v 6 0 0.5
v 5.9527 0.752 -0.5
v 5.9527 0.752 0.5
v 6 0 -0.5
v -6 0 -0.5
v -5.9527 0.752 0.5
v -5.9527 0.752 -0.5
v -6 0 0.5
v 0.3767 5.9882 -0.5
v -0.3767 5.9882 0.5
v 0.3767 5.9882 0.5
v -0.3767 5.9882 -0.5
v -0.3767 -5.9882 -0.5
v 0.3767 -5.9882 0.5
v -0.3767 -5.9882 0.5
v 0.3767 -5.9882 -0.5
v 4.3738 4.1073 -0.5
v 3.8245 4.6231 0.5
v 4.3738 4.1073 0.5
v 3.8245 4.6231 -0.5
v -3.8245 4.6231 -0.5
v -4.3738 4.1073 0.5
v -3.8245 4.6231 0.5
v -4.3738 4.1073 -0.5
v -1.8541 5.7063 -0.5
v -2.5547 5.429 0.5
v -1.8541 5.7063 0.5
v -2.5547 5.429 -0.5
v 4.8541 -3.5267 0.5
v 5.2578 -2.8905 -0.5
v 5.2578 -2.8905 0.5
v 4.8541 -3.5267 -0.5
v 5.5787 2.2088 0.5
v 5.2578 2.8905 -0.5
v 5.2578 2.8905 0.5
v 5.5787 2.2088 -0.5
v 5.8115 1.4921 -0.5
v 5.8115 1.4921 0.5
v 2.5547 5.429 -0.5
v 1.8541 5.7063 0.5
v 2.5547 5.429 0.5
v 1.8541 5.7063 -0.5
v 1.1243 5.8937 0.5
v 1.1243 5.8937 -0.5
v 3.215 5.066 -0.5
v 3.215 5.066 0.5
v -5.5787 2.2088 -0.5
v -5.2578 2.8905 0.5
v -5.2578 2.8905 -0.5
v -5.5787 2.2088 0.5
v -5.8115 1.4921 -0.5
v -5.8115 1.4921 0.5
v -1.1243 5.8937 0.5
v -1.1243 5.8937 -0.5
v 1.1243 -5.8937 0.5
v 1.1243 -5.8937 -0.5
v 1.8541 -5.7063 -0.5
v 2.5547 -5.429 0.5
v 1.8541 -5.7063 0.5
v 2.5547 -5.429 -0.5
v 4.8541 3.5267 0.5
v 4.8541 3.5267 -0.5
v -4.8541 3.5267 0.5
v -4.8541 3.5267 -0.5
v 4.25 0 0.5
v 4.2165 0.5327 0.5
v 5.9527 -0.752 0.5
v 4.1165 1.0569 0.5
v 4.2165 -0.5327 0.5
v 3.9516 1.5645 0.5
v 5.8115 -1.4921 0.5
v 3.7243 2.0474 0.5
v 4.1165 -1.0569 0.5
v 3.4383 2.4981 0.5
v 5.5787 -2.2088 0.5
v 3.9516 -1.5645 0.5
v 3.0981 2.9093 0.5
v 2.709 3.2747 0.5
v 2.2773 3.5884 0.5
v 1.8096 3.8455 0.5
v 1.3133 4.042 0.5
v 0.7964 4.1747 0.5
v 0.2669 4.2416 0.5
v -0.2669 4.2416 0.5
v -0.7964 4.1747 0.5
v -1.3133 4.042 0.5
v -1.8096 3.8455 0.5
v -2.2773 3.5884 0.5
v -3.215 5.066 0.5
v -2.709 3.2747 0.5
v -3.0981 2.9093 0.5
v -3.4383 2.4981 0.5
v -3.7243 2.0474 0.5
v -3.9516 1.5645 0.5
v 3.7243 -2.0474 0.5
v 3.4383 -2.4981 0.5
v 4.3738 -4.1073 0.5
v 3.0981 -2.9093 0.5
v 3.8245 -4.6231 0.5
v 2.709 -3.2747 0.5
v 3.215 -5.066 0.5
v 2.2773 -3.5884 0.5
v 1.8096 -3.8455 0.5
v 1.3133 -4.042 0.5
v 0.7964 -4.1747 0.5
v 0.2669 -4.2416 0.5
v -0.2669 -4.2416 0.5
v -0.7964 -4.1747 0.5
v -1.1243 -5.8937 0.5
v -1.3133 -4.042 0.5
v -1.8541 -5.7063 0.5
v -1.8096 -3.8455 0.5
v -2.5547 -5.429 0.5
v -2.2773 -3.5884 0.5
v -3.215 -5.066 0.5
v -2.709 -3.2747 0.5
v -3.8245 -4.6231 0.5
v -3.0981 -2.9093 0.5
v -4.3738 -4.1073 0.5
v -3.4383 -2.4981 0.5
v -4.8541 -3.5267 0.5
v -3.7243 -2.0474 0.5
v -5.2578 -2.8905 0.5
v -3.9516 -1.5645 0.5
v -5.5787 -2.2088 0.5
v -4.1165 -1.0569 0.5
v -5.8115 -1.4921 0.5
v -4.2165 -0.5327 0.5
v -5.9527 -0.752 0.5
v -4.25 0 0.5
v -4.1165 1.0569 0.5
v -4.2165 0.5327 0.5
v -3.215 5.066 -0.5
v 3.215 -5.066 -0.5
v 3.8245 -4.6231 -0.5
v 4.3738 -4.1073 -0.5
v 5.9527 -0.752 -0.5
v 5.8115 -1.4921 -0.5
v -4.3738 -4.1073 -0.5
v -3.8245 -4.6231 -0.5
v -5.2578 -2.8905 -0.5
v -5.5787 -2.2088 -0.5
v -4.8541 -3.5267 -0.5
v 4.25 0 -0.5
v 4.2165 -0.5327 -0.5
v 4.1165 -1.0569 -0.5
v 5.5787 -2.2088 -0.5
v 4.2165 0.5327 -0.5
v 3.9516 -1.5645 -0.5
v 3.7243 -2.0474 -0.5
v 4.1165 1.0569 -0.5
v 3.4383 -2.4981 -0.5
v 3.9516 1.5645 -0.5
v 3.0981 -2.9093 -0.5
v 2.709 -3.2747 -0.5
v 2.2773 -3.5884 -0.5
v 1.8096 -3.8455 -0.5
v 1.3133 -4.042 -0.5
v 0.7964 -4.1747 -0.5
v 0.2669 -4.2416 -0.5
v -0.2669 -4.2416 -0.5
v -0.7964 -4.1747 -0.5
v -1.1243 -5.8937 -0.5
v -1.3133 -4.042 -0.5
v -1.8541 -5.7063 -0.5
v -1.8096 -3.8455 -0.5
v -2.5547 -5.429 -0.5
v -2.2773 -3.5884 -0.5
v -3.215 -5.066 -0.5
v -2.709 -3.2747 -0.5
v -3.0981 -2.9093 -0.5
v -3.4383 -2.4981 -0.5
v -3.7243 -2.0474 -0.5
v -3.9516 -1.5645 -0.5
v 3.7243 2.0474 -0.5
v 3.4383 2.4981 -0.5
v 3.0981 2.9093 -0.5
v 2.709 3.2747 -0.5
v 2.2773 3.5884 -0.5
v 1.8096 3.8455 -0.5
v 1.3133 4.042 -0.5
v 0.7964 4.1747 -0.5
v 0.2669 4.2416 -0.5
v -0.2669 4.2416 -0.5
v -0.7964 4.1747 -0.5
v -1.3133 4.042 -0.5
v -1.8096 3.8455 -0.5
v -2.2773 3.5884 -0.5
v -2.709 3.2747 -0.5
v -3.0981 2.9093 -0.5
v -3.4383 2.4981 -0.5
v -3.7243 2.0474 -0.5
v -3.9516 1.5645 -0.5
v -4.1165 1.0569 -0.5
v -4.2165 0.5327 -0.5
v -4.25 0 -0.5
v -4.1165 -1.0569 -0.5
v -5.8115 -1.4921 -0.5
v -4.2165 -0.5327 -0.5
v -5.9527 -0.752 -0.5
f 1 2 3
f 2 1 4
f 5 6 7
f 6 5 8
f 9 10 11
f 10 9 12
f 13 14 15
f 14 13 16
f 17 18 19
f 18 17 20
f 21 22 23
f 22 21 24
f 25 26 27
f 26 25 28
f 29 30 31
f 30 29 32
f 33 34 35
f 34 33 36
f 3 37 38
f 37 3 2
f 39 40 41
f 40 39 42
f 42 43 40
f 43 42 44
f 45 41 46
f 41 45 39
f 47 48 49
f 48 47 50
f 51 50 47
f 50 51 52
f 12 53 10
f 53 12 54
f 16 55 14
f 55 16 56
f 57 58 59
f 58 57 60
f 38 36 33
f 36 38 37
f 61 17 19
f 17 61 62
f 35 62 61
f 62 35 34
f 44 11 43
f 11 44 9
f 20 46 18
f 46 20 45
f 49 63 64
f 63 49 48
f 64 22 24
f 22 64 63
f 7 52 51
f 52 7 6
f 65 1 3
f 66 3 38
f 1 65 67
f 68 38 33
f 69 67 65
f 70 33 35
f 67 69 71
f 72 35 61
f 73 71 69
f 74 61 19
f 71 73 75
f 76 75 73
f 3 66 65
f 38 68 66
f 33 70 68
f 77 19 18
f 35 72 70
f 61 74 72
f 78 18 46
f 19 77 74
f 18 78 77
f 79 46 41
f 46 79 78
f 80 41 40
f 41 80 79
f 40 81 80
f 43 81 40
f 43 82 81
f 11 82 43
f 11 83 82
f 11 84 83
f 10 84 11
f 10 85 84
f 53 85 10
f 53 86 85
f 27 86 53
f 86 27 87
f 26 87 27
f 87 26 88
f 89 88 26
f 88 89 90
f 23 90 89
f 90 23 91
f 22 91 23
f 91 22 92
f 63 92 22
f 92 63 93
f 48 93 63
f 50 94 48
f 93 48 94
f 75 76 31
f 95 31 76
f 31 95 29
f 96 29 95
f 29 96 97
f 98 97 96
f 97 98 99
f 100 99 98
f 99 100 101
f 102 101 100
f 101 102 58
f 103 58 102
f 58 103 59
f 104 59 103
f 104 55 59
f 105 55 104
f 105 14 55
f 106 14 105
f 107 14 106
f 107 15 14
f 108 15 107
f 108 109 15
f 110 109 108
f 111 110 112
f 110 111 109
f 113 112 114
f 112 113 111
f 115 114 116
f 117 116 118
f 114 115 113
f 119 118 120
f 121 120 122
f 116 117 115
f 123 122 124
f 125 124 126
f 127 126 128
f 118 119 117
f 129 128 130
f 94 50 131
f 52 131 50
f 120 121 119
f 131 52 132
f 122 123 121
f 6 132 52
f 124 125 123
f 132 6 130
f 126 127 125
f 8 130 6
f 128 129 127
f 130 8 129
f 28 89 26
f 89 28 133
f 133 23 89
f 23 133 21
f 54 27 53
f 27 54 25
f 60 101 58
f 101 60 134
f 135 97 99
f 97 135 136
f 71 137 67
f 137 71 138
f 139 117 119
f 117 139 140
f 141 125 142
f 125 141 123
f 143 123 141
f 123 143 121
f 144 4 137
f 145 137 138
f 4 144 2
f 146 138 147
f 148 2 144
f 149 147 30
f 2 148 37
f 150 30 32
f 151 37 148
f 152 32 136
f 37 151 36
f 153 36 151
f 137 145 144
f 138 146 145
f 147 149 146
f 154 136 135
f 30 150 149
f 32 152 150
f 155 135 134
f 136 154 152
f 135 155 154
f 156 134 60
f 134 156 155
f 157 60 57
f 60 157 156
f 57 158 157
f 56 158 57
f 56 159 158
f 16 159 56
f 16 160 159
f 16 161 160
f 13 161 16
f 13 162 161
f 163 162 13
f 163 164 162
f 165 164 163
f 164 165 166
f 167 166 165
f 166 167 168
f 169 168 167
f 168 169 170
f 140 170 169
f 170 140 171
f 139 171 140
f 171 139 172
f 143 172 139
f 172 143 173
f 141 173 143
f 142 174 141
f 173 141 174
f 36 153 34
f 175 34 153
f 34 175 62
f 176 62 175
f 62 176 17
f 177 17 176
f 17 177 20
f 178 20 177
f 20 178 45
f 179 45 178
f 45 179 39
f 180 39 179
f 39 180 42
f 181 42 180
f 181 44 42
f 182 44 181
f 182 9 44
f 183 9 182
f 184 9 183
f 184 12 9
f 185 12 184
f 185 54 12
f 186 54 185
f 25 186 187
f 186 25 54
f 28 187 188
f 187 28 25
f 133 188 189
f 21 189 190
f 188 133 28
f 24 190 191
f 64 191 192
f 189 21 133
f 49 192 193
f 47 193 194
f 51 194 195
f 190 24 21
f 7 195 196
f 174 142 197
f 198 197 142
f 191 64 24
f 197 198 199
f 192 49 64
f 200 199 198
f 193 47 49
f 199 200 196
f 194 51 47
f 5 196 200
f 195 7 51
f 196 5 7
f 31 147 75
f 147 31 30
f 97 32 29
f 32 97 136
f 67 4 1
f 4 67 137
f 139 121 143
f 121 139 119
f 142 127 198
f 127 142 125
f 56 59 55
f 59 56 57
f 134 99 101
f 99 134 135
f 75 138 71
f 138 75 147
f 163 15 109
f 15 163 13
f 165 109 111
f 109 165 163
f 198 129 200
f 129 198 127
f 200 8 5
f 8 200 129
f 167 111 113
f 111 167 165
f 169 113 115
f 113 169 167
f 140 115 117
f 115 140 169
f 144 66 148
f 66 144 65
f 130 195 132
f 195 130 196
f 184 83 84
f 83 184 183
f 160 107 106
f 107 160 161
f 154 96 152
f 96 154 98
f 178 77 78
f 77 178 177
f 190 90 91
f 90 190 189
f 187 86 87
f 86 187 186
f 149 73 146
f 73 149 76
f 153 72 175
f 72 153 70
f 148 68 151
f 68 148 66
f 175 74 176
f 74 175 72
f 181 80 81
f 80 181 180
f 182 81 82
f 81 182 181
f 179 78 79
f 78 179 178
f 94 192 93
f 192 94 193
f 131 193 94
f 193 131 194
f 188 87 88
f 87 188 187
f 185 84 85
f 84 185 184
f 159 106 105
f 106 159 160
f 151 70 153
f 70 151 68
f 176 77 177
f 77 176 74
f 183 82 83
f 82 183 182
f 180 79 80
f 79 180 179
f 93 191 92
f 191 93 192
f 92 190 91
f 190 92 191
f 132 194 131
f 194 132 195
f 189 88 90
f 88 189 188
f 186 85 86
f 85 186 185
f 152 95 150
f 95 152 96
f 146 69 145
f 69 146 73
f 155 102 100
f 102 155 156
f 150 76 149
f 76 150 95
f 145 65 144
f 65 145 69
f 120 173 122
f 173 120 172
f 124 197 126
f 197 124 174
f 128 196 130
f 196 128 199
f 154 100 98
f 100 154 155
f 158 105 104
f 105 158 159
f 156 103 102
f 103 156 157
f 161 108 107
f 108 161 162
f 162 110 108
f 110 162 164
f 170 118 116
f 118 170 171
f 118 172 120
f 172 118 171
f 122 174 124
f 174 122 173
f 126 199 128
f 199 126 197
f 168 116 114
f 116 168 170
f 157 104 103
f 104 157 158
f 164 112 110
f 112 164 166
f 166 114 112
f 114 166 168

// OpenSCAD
$fn = 50;


difference() {
	union() {
		translate(v = [0, 0, -0.5000000000]) {
			cylinder(h = 1, r = 6.0000000000);
		}
	}
	union() {
		translate(v = [0, 0, -100.0000000000]) {
			cylinder(h = 200, r = 4.2500000000);
		}
	}
}
